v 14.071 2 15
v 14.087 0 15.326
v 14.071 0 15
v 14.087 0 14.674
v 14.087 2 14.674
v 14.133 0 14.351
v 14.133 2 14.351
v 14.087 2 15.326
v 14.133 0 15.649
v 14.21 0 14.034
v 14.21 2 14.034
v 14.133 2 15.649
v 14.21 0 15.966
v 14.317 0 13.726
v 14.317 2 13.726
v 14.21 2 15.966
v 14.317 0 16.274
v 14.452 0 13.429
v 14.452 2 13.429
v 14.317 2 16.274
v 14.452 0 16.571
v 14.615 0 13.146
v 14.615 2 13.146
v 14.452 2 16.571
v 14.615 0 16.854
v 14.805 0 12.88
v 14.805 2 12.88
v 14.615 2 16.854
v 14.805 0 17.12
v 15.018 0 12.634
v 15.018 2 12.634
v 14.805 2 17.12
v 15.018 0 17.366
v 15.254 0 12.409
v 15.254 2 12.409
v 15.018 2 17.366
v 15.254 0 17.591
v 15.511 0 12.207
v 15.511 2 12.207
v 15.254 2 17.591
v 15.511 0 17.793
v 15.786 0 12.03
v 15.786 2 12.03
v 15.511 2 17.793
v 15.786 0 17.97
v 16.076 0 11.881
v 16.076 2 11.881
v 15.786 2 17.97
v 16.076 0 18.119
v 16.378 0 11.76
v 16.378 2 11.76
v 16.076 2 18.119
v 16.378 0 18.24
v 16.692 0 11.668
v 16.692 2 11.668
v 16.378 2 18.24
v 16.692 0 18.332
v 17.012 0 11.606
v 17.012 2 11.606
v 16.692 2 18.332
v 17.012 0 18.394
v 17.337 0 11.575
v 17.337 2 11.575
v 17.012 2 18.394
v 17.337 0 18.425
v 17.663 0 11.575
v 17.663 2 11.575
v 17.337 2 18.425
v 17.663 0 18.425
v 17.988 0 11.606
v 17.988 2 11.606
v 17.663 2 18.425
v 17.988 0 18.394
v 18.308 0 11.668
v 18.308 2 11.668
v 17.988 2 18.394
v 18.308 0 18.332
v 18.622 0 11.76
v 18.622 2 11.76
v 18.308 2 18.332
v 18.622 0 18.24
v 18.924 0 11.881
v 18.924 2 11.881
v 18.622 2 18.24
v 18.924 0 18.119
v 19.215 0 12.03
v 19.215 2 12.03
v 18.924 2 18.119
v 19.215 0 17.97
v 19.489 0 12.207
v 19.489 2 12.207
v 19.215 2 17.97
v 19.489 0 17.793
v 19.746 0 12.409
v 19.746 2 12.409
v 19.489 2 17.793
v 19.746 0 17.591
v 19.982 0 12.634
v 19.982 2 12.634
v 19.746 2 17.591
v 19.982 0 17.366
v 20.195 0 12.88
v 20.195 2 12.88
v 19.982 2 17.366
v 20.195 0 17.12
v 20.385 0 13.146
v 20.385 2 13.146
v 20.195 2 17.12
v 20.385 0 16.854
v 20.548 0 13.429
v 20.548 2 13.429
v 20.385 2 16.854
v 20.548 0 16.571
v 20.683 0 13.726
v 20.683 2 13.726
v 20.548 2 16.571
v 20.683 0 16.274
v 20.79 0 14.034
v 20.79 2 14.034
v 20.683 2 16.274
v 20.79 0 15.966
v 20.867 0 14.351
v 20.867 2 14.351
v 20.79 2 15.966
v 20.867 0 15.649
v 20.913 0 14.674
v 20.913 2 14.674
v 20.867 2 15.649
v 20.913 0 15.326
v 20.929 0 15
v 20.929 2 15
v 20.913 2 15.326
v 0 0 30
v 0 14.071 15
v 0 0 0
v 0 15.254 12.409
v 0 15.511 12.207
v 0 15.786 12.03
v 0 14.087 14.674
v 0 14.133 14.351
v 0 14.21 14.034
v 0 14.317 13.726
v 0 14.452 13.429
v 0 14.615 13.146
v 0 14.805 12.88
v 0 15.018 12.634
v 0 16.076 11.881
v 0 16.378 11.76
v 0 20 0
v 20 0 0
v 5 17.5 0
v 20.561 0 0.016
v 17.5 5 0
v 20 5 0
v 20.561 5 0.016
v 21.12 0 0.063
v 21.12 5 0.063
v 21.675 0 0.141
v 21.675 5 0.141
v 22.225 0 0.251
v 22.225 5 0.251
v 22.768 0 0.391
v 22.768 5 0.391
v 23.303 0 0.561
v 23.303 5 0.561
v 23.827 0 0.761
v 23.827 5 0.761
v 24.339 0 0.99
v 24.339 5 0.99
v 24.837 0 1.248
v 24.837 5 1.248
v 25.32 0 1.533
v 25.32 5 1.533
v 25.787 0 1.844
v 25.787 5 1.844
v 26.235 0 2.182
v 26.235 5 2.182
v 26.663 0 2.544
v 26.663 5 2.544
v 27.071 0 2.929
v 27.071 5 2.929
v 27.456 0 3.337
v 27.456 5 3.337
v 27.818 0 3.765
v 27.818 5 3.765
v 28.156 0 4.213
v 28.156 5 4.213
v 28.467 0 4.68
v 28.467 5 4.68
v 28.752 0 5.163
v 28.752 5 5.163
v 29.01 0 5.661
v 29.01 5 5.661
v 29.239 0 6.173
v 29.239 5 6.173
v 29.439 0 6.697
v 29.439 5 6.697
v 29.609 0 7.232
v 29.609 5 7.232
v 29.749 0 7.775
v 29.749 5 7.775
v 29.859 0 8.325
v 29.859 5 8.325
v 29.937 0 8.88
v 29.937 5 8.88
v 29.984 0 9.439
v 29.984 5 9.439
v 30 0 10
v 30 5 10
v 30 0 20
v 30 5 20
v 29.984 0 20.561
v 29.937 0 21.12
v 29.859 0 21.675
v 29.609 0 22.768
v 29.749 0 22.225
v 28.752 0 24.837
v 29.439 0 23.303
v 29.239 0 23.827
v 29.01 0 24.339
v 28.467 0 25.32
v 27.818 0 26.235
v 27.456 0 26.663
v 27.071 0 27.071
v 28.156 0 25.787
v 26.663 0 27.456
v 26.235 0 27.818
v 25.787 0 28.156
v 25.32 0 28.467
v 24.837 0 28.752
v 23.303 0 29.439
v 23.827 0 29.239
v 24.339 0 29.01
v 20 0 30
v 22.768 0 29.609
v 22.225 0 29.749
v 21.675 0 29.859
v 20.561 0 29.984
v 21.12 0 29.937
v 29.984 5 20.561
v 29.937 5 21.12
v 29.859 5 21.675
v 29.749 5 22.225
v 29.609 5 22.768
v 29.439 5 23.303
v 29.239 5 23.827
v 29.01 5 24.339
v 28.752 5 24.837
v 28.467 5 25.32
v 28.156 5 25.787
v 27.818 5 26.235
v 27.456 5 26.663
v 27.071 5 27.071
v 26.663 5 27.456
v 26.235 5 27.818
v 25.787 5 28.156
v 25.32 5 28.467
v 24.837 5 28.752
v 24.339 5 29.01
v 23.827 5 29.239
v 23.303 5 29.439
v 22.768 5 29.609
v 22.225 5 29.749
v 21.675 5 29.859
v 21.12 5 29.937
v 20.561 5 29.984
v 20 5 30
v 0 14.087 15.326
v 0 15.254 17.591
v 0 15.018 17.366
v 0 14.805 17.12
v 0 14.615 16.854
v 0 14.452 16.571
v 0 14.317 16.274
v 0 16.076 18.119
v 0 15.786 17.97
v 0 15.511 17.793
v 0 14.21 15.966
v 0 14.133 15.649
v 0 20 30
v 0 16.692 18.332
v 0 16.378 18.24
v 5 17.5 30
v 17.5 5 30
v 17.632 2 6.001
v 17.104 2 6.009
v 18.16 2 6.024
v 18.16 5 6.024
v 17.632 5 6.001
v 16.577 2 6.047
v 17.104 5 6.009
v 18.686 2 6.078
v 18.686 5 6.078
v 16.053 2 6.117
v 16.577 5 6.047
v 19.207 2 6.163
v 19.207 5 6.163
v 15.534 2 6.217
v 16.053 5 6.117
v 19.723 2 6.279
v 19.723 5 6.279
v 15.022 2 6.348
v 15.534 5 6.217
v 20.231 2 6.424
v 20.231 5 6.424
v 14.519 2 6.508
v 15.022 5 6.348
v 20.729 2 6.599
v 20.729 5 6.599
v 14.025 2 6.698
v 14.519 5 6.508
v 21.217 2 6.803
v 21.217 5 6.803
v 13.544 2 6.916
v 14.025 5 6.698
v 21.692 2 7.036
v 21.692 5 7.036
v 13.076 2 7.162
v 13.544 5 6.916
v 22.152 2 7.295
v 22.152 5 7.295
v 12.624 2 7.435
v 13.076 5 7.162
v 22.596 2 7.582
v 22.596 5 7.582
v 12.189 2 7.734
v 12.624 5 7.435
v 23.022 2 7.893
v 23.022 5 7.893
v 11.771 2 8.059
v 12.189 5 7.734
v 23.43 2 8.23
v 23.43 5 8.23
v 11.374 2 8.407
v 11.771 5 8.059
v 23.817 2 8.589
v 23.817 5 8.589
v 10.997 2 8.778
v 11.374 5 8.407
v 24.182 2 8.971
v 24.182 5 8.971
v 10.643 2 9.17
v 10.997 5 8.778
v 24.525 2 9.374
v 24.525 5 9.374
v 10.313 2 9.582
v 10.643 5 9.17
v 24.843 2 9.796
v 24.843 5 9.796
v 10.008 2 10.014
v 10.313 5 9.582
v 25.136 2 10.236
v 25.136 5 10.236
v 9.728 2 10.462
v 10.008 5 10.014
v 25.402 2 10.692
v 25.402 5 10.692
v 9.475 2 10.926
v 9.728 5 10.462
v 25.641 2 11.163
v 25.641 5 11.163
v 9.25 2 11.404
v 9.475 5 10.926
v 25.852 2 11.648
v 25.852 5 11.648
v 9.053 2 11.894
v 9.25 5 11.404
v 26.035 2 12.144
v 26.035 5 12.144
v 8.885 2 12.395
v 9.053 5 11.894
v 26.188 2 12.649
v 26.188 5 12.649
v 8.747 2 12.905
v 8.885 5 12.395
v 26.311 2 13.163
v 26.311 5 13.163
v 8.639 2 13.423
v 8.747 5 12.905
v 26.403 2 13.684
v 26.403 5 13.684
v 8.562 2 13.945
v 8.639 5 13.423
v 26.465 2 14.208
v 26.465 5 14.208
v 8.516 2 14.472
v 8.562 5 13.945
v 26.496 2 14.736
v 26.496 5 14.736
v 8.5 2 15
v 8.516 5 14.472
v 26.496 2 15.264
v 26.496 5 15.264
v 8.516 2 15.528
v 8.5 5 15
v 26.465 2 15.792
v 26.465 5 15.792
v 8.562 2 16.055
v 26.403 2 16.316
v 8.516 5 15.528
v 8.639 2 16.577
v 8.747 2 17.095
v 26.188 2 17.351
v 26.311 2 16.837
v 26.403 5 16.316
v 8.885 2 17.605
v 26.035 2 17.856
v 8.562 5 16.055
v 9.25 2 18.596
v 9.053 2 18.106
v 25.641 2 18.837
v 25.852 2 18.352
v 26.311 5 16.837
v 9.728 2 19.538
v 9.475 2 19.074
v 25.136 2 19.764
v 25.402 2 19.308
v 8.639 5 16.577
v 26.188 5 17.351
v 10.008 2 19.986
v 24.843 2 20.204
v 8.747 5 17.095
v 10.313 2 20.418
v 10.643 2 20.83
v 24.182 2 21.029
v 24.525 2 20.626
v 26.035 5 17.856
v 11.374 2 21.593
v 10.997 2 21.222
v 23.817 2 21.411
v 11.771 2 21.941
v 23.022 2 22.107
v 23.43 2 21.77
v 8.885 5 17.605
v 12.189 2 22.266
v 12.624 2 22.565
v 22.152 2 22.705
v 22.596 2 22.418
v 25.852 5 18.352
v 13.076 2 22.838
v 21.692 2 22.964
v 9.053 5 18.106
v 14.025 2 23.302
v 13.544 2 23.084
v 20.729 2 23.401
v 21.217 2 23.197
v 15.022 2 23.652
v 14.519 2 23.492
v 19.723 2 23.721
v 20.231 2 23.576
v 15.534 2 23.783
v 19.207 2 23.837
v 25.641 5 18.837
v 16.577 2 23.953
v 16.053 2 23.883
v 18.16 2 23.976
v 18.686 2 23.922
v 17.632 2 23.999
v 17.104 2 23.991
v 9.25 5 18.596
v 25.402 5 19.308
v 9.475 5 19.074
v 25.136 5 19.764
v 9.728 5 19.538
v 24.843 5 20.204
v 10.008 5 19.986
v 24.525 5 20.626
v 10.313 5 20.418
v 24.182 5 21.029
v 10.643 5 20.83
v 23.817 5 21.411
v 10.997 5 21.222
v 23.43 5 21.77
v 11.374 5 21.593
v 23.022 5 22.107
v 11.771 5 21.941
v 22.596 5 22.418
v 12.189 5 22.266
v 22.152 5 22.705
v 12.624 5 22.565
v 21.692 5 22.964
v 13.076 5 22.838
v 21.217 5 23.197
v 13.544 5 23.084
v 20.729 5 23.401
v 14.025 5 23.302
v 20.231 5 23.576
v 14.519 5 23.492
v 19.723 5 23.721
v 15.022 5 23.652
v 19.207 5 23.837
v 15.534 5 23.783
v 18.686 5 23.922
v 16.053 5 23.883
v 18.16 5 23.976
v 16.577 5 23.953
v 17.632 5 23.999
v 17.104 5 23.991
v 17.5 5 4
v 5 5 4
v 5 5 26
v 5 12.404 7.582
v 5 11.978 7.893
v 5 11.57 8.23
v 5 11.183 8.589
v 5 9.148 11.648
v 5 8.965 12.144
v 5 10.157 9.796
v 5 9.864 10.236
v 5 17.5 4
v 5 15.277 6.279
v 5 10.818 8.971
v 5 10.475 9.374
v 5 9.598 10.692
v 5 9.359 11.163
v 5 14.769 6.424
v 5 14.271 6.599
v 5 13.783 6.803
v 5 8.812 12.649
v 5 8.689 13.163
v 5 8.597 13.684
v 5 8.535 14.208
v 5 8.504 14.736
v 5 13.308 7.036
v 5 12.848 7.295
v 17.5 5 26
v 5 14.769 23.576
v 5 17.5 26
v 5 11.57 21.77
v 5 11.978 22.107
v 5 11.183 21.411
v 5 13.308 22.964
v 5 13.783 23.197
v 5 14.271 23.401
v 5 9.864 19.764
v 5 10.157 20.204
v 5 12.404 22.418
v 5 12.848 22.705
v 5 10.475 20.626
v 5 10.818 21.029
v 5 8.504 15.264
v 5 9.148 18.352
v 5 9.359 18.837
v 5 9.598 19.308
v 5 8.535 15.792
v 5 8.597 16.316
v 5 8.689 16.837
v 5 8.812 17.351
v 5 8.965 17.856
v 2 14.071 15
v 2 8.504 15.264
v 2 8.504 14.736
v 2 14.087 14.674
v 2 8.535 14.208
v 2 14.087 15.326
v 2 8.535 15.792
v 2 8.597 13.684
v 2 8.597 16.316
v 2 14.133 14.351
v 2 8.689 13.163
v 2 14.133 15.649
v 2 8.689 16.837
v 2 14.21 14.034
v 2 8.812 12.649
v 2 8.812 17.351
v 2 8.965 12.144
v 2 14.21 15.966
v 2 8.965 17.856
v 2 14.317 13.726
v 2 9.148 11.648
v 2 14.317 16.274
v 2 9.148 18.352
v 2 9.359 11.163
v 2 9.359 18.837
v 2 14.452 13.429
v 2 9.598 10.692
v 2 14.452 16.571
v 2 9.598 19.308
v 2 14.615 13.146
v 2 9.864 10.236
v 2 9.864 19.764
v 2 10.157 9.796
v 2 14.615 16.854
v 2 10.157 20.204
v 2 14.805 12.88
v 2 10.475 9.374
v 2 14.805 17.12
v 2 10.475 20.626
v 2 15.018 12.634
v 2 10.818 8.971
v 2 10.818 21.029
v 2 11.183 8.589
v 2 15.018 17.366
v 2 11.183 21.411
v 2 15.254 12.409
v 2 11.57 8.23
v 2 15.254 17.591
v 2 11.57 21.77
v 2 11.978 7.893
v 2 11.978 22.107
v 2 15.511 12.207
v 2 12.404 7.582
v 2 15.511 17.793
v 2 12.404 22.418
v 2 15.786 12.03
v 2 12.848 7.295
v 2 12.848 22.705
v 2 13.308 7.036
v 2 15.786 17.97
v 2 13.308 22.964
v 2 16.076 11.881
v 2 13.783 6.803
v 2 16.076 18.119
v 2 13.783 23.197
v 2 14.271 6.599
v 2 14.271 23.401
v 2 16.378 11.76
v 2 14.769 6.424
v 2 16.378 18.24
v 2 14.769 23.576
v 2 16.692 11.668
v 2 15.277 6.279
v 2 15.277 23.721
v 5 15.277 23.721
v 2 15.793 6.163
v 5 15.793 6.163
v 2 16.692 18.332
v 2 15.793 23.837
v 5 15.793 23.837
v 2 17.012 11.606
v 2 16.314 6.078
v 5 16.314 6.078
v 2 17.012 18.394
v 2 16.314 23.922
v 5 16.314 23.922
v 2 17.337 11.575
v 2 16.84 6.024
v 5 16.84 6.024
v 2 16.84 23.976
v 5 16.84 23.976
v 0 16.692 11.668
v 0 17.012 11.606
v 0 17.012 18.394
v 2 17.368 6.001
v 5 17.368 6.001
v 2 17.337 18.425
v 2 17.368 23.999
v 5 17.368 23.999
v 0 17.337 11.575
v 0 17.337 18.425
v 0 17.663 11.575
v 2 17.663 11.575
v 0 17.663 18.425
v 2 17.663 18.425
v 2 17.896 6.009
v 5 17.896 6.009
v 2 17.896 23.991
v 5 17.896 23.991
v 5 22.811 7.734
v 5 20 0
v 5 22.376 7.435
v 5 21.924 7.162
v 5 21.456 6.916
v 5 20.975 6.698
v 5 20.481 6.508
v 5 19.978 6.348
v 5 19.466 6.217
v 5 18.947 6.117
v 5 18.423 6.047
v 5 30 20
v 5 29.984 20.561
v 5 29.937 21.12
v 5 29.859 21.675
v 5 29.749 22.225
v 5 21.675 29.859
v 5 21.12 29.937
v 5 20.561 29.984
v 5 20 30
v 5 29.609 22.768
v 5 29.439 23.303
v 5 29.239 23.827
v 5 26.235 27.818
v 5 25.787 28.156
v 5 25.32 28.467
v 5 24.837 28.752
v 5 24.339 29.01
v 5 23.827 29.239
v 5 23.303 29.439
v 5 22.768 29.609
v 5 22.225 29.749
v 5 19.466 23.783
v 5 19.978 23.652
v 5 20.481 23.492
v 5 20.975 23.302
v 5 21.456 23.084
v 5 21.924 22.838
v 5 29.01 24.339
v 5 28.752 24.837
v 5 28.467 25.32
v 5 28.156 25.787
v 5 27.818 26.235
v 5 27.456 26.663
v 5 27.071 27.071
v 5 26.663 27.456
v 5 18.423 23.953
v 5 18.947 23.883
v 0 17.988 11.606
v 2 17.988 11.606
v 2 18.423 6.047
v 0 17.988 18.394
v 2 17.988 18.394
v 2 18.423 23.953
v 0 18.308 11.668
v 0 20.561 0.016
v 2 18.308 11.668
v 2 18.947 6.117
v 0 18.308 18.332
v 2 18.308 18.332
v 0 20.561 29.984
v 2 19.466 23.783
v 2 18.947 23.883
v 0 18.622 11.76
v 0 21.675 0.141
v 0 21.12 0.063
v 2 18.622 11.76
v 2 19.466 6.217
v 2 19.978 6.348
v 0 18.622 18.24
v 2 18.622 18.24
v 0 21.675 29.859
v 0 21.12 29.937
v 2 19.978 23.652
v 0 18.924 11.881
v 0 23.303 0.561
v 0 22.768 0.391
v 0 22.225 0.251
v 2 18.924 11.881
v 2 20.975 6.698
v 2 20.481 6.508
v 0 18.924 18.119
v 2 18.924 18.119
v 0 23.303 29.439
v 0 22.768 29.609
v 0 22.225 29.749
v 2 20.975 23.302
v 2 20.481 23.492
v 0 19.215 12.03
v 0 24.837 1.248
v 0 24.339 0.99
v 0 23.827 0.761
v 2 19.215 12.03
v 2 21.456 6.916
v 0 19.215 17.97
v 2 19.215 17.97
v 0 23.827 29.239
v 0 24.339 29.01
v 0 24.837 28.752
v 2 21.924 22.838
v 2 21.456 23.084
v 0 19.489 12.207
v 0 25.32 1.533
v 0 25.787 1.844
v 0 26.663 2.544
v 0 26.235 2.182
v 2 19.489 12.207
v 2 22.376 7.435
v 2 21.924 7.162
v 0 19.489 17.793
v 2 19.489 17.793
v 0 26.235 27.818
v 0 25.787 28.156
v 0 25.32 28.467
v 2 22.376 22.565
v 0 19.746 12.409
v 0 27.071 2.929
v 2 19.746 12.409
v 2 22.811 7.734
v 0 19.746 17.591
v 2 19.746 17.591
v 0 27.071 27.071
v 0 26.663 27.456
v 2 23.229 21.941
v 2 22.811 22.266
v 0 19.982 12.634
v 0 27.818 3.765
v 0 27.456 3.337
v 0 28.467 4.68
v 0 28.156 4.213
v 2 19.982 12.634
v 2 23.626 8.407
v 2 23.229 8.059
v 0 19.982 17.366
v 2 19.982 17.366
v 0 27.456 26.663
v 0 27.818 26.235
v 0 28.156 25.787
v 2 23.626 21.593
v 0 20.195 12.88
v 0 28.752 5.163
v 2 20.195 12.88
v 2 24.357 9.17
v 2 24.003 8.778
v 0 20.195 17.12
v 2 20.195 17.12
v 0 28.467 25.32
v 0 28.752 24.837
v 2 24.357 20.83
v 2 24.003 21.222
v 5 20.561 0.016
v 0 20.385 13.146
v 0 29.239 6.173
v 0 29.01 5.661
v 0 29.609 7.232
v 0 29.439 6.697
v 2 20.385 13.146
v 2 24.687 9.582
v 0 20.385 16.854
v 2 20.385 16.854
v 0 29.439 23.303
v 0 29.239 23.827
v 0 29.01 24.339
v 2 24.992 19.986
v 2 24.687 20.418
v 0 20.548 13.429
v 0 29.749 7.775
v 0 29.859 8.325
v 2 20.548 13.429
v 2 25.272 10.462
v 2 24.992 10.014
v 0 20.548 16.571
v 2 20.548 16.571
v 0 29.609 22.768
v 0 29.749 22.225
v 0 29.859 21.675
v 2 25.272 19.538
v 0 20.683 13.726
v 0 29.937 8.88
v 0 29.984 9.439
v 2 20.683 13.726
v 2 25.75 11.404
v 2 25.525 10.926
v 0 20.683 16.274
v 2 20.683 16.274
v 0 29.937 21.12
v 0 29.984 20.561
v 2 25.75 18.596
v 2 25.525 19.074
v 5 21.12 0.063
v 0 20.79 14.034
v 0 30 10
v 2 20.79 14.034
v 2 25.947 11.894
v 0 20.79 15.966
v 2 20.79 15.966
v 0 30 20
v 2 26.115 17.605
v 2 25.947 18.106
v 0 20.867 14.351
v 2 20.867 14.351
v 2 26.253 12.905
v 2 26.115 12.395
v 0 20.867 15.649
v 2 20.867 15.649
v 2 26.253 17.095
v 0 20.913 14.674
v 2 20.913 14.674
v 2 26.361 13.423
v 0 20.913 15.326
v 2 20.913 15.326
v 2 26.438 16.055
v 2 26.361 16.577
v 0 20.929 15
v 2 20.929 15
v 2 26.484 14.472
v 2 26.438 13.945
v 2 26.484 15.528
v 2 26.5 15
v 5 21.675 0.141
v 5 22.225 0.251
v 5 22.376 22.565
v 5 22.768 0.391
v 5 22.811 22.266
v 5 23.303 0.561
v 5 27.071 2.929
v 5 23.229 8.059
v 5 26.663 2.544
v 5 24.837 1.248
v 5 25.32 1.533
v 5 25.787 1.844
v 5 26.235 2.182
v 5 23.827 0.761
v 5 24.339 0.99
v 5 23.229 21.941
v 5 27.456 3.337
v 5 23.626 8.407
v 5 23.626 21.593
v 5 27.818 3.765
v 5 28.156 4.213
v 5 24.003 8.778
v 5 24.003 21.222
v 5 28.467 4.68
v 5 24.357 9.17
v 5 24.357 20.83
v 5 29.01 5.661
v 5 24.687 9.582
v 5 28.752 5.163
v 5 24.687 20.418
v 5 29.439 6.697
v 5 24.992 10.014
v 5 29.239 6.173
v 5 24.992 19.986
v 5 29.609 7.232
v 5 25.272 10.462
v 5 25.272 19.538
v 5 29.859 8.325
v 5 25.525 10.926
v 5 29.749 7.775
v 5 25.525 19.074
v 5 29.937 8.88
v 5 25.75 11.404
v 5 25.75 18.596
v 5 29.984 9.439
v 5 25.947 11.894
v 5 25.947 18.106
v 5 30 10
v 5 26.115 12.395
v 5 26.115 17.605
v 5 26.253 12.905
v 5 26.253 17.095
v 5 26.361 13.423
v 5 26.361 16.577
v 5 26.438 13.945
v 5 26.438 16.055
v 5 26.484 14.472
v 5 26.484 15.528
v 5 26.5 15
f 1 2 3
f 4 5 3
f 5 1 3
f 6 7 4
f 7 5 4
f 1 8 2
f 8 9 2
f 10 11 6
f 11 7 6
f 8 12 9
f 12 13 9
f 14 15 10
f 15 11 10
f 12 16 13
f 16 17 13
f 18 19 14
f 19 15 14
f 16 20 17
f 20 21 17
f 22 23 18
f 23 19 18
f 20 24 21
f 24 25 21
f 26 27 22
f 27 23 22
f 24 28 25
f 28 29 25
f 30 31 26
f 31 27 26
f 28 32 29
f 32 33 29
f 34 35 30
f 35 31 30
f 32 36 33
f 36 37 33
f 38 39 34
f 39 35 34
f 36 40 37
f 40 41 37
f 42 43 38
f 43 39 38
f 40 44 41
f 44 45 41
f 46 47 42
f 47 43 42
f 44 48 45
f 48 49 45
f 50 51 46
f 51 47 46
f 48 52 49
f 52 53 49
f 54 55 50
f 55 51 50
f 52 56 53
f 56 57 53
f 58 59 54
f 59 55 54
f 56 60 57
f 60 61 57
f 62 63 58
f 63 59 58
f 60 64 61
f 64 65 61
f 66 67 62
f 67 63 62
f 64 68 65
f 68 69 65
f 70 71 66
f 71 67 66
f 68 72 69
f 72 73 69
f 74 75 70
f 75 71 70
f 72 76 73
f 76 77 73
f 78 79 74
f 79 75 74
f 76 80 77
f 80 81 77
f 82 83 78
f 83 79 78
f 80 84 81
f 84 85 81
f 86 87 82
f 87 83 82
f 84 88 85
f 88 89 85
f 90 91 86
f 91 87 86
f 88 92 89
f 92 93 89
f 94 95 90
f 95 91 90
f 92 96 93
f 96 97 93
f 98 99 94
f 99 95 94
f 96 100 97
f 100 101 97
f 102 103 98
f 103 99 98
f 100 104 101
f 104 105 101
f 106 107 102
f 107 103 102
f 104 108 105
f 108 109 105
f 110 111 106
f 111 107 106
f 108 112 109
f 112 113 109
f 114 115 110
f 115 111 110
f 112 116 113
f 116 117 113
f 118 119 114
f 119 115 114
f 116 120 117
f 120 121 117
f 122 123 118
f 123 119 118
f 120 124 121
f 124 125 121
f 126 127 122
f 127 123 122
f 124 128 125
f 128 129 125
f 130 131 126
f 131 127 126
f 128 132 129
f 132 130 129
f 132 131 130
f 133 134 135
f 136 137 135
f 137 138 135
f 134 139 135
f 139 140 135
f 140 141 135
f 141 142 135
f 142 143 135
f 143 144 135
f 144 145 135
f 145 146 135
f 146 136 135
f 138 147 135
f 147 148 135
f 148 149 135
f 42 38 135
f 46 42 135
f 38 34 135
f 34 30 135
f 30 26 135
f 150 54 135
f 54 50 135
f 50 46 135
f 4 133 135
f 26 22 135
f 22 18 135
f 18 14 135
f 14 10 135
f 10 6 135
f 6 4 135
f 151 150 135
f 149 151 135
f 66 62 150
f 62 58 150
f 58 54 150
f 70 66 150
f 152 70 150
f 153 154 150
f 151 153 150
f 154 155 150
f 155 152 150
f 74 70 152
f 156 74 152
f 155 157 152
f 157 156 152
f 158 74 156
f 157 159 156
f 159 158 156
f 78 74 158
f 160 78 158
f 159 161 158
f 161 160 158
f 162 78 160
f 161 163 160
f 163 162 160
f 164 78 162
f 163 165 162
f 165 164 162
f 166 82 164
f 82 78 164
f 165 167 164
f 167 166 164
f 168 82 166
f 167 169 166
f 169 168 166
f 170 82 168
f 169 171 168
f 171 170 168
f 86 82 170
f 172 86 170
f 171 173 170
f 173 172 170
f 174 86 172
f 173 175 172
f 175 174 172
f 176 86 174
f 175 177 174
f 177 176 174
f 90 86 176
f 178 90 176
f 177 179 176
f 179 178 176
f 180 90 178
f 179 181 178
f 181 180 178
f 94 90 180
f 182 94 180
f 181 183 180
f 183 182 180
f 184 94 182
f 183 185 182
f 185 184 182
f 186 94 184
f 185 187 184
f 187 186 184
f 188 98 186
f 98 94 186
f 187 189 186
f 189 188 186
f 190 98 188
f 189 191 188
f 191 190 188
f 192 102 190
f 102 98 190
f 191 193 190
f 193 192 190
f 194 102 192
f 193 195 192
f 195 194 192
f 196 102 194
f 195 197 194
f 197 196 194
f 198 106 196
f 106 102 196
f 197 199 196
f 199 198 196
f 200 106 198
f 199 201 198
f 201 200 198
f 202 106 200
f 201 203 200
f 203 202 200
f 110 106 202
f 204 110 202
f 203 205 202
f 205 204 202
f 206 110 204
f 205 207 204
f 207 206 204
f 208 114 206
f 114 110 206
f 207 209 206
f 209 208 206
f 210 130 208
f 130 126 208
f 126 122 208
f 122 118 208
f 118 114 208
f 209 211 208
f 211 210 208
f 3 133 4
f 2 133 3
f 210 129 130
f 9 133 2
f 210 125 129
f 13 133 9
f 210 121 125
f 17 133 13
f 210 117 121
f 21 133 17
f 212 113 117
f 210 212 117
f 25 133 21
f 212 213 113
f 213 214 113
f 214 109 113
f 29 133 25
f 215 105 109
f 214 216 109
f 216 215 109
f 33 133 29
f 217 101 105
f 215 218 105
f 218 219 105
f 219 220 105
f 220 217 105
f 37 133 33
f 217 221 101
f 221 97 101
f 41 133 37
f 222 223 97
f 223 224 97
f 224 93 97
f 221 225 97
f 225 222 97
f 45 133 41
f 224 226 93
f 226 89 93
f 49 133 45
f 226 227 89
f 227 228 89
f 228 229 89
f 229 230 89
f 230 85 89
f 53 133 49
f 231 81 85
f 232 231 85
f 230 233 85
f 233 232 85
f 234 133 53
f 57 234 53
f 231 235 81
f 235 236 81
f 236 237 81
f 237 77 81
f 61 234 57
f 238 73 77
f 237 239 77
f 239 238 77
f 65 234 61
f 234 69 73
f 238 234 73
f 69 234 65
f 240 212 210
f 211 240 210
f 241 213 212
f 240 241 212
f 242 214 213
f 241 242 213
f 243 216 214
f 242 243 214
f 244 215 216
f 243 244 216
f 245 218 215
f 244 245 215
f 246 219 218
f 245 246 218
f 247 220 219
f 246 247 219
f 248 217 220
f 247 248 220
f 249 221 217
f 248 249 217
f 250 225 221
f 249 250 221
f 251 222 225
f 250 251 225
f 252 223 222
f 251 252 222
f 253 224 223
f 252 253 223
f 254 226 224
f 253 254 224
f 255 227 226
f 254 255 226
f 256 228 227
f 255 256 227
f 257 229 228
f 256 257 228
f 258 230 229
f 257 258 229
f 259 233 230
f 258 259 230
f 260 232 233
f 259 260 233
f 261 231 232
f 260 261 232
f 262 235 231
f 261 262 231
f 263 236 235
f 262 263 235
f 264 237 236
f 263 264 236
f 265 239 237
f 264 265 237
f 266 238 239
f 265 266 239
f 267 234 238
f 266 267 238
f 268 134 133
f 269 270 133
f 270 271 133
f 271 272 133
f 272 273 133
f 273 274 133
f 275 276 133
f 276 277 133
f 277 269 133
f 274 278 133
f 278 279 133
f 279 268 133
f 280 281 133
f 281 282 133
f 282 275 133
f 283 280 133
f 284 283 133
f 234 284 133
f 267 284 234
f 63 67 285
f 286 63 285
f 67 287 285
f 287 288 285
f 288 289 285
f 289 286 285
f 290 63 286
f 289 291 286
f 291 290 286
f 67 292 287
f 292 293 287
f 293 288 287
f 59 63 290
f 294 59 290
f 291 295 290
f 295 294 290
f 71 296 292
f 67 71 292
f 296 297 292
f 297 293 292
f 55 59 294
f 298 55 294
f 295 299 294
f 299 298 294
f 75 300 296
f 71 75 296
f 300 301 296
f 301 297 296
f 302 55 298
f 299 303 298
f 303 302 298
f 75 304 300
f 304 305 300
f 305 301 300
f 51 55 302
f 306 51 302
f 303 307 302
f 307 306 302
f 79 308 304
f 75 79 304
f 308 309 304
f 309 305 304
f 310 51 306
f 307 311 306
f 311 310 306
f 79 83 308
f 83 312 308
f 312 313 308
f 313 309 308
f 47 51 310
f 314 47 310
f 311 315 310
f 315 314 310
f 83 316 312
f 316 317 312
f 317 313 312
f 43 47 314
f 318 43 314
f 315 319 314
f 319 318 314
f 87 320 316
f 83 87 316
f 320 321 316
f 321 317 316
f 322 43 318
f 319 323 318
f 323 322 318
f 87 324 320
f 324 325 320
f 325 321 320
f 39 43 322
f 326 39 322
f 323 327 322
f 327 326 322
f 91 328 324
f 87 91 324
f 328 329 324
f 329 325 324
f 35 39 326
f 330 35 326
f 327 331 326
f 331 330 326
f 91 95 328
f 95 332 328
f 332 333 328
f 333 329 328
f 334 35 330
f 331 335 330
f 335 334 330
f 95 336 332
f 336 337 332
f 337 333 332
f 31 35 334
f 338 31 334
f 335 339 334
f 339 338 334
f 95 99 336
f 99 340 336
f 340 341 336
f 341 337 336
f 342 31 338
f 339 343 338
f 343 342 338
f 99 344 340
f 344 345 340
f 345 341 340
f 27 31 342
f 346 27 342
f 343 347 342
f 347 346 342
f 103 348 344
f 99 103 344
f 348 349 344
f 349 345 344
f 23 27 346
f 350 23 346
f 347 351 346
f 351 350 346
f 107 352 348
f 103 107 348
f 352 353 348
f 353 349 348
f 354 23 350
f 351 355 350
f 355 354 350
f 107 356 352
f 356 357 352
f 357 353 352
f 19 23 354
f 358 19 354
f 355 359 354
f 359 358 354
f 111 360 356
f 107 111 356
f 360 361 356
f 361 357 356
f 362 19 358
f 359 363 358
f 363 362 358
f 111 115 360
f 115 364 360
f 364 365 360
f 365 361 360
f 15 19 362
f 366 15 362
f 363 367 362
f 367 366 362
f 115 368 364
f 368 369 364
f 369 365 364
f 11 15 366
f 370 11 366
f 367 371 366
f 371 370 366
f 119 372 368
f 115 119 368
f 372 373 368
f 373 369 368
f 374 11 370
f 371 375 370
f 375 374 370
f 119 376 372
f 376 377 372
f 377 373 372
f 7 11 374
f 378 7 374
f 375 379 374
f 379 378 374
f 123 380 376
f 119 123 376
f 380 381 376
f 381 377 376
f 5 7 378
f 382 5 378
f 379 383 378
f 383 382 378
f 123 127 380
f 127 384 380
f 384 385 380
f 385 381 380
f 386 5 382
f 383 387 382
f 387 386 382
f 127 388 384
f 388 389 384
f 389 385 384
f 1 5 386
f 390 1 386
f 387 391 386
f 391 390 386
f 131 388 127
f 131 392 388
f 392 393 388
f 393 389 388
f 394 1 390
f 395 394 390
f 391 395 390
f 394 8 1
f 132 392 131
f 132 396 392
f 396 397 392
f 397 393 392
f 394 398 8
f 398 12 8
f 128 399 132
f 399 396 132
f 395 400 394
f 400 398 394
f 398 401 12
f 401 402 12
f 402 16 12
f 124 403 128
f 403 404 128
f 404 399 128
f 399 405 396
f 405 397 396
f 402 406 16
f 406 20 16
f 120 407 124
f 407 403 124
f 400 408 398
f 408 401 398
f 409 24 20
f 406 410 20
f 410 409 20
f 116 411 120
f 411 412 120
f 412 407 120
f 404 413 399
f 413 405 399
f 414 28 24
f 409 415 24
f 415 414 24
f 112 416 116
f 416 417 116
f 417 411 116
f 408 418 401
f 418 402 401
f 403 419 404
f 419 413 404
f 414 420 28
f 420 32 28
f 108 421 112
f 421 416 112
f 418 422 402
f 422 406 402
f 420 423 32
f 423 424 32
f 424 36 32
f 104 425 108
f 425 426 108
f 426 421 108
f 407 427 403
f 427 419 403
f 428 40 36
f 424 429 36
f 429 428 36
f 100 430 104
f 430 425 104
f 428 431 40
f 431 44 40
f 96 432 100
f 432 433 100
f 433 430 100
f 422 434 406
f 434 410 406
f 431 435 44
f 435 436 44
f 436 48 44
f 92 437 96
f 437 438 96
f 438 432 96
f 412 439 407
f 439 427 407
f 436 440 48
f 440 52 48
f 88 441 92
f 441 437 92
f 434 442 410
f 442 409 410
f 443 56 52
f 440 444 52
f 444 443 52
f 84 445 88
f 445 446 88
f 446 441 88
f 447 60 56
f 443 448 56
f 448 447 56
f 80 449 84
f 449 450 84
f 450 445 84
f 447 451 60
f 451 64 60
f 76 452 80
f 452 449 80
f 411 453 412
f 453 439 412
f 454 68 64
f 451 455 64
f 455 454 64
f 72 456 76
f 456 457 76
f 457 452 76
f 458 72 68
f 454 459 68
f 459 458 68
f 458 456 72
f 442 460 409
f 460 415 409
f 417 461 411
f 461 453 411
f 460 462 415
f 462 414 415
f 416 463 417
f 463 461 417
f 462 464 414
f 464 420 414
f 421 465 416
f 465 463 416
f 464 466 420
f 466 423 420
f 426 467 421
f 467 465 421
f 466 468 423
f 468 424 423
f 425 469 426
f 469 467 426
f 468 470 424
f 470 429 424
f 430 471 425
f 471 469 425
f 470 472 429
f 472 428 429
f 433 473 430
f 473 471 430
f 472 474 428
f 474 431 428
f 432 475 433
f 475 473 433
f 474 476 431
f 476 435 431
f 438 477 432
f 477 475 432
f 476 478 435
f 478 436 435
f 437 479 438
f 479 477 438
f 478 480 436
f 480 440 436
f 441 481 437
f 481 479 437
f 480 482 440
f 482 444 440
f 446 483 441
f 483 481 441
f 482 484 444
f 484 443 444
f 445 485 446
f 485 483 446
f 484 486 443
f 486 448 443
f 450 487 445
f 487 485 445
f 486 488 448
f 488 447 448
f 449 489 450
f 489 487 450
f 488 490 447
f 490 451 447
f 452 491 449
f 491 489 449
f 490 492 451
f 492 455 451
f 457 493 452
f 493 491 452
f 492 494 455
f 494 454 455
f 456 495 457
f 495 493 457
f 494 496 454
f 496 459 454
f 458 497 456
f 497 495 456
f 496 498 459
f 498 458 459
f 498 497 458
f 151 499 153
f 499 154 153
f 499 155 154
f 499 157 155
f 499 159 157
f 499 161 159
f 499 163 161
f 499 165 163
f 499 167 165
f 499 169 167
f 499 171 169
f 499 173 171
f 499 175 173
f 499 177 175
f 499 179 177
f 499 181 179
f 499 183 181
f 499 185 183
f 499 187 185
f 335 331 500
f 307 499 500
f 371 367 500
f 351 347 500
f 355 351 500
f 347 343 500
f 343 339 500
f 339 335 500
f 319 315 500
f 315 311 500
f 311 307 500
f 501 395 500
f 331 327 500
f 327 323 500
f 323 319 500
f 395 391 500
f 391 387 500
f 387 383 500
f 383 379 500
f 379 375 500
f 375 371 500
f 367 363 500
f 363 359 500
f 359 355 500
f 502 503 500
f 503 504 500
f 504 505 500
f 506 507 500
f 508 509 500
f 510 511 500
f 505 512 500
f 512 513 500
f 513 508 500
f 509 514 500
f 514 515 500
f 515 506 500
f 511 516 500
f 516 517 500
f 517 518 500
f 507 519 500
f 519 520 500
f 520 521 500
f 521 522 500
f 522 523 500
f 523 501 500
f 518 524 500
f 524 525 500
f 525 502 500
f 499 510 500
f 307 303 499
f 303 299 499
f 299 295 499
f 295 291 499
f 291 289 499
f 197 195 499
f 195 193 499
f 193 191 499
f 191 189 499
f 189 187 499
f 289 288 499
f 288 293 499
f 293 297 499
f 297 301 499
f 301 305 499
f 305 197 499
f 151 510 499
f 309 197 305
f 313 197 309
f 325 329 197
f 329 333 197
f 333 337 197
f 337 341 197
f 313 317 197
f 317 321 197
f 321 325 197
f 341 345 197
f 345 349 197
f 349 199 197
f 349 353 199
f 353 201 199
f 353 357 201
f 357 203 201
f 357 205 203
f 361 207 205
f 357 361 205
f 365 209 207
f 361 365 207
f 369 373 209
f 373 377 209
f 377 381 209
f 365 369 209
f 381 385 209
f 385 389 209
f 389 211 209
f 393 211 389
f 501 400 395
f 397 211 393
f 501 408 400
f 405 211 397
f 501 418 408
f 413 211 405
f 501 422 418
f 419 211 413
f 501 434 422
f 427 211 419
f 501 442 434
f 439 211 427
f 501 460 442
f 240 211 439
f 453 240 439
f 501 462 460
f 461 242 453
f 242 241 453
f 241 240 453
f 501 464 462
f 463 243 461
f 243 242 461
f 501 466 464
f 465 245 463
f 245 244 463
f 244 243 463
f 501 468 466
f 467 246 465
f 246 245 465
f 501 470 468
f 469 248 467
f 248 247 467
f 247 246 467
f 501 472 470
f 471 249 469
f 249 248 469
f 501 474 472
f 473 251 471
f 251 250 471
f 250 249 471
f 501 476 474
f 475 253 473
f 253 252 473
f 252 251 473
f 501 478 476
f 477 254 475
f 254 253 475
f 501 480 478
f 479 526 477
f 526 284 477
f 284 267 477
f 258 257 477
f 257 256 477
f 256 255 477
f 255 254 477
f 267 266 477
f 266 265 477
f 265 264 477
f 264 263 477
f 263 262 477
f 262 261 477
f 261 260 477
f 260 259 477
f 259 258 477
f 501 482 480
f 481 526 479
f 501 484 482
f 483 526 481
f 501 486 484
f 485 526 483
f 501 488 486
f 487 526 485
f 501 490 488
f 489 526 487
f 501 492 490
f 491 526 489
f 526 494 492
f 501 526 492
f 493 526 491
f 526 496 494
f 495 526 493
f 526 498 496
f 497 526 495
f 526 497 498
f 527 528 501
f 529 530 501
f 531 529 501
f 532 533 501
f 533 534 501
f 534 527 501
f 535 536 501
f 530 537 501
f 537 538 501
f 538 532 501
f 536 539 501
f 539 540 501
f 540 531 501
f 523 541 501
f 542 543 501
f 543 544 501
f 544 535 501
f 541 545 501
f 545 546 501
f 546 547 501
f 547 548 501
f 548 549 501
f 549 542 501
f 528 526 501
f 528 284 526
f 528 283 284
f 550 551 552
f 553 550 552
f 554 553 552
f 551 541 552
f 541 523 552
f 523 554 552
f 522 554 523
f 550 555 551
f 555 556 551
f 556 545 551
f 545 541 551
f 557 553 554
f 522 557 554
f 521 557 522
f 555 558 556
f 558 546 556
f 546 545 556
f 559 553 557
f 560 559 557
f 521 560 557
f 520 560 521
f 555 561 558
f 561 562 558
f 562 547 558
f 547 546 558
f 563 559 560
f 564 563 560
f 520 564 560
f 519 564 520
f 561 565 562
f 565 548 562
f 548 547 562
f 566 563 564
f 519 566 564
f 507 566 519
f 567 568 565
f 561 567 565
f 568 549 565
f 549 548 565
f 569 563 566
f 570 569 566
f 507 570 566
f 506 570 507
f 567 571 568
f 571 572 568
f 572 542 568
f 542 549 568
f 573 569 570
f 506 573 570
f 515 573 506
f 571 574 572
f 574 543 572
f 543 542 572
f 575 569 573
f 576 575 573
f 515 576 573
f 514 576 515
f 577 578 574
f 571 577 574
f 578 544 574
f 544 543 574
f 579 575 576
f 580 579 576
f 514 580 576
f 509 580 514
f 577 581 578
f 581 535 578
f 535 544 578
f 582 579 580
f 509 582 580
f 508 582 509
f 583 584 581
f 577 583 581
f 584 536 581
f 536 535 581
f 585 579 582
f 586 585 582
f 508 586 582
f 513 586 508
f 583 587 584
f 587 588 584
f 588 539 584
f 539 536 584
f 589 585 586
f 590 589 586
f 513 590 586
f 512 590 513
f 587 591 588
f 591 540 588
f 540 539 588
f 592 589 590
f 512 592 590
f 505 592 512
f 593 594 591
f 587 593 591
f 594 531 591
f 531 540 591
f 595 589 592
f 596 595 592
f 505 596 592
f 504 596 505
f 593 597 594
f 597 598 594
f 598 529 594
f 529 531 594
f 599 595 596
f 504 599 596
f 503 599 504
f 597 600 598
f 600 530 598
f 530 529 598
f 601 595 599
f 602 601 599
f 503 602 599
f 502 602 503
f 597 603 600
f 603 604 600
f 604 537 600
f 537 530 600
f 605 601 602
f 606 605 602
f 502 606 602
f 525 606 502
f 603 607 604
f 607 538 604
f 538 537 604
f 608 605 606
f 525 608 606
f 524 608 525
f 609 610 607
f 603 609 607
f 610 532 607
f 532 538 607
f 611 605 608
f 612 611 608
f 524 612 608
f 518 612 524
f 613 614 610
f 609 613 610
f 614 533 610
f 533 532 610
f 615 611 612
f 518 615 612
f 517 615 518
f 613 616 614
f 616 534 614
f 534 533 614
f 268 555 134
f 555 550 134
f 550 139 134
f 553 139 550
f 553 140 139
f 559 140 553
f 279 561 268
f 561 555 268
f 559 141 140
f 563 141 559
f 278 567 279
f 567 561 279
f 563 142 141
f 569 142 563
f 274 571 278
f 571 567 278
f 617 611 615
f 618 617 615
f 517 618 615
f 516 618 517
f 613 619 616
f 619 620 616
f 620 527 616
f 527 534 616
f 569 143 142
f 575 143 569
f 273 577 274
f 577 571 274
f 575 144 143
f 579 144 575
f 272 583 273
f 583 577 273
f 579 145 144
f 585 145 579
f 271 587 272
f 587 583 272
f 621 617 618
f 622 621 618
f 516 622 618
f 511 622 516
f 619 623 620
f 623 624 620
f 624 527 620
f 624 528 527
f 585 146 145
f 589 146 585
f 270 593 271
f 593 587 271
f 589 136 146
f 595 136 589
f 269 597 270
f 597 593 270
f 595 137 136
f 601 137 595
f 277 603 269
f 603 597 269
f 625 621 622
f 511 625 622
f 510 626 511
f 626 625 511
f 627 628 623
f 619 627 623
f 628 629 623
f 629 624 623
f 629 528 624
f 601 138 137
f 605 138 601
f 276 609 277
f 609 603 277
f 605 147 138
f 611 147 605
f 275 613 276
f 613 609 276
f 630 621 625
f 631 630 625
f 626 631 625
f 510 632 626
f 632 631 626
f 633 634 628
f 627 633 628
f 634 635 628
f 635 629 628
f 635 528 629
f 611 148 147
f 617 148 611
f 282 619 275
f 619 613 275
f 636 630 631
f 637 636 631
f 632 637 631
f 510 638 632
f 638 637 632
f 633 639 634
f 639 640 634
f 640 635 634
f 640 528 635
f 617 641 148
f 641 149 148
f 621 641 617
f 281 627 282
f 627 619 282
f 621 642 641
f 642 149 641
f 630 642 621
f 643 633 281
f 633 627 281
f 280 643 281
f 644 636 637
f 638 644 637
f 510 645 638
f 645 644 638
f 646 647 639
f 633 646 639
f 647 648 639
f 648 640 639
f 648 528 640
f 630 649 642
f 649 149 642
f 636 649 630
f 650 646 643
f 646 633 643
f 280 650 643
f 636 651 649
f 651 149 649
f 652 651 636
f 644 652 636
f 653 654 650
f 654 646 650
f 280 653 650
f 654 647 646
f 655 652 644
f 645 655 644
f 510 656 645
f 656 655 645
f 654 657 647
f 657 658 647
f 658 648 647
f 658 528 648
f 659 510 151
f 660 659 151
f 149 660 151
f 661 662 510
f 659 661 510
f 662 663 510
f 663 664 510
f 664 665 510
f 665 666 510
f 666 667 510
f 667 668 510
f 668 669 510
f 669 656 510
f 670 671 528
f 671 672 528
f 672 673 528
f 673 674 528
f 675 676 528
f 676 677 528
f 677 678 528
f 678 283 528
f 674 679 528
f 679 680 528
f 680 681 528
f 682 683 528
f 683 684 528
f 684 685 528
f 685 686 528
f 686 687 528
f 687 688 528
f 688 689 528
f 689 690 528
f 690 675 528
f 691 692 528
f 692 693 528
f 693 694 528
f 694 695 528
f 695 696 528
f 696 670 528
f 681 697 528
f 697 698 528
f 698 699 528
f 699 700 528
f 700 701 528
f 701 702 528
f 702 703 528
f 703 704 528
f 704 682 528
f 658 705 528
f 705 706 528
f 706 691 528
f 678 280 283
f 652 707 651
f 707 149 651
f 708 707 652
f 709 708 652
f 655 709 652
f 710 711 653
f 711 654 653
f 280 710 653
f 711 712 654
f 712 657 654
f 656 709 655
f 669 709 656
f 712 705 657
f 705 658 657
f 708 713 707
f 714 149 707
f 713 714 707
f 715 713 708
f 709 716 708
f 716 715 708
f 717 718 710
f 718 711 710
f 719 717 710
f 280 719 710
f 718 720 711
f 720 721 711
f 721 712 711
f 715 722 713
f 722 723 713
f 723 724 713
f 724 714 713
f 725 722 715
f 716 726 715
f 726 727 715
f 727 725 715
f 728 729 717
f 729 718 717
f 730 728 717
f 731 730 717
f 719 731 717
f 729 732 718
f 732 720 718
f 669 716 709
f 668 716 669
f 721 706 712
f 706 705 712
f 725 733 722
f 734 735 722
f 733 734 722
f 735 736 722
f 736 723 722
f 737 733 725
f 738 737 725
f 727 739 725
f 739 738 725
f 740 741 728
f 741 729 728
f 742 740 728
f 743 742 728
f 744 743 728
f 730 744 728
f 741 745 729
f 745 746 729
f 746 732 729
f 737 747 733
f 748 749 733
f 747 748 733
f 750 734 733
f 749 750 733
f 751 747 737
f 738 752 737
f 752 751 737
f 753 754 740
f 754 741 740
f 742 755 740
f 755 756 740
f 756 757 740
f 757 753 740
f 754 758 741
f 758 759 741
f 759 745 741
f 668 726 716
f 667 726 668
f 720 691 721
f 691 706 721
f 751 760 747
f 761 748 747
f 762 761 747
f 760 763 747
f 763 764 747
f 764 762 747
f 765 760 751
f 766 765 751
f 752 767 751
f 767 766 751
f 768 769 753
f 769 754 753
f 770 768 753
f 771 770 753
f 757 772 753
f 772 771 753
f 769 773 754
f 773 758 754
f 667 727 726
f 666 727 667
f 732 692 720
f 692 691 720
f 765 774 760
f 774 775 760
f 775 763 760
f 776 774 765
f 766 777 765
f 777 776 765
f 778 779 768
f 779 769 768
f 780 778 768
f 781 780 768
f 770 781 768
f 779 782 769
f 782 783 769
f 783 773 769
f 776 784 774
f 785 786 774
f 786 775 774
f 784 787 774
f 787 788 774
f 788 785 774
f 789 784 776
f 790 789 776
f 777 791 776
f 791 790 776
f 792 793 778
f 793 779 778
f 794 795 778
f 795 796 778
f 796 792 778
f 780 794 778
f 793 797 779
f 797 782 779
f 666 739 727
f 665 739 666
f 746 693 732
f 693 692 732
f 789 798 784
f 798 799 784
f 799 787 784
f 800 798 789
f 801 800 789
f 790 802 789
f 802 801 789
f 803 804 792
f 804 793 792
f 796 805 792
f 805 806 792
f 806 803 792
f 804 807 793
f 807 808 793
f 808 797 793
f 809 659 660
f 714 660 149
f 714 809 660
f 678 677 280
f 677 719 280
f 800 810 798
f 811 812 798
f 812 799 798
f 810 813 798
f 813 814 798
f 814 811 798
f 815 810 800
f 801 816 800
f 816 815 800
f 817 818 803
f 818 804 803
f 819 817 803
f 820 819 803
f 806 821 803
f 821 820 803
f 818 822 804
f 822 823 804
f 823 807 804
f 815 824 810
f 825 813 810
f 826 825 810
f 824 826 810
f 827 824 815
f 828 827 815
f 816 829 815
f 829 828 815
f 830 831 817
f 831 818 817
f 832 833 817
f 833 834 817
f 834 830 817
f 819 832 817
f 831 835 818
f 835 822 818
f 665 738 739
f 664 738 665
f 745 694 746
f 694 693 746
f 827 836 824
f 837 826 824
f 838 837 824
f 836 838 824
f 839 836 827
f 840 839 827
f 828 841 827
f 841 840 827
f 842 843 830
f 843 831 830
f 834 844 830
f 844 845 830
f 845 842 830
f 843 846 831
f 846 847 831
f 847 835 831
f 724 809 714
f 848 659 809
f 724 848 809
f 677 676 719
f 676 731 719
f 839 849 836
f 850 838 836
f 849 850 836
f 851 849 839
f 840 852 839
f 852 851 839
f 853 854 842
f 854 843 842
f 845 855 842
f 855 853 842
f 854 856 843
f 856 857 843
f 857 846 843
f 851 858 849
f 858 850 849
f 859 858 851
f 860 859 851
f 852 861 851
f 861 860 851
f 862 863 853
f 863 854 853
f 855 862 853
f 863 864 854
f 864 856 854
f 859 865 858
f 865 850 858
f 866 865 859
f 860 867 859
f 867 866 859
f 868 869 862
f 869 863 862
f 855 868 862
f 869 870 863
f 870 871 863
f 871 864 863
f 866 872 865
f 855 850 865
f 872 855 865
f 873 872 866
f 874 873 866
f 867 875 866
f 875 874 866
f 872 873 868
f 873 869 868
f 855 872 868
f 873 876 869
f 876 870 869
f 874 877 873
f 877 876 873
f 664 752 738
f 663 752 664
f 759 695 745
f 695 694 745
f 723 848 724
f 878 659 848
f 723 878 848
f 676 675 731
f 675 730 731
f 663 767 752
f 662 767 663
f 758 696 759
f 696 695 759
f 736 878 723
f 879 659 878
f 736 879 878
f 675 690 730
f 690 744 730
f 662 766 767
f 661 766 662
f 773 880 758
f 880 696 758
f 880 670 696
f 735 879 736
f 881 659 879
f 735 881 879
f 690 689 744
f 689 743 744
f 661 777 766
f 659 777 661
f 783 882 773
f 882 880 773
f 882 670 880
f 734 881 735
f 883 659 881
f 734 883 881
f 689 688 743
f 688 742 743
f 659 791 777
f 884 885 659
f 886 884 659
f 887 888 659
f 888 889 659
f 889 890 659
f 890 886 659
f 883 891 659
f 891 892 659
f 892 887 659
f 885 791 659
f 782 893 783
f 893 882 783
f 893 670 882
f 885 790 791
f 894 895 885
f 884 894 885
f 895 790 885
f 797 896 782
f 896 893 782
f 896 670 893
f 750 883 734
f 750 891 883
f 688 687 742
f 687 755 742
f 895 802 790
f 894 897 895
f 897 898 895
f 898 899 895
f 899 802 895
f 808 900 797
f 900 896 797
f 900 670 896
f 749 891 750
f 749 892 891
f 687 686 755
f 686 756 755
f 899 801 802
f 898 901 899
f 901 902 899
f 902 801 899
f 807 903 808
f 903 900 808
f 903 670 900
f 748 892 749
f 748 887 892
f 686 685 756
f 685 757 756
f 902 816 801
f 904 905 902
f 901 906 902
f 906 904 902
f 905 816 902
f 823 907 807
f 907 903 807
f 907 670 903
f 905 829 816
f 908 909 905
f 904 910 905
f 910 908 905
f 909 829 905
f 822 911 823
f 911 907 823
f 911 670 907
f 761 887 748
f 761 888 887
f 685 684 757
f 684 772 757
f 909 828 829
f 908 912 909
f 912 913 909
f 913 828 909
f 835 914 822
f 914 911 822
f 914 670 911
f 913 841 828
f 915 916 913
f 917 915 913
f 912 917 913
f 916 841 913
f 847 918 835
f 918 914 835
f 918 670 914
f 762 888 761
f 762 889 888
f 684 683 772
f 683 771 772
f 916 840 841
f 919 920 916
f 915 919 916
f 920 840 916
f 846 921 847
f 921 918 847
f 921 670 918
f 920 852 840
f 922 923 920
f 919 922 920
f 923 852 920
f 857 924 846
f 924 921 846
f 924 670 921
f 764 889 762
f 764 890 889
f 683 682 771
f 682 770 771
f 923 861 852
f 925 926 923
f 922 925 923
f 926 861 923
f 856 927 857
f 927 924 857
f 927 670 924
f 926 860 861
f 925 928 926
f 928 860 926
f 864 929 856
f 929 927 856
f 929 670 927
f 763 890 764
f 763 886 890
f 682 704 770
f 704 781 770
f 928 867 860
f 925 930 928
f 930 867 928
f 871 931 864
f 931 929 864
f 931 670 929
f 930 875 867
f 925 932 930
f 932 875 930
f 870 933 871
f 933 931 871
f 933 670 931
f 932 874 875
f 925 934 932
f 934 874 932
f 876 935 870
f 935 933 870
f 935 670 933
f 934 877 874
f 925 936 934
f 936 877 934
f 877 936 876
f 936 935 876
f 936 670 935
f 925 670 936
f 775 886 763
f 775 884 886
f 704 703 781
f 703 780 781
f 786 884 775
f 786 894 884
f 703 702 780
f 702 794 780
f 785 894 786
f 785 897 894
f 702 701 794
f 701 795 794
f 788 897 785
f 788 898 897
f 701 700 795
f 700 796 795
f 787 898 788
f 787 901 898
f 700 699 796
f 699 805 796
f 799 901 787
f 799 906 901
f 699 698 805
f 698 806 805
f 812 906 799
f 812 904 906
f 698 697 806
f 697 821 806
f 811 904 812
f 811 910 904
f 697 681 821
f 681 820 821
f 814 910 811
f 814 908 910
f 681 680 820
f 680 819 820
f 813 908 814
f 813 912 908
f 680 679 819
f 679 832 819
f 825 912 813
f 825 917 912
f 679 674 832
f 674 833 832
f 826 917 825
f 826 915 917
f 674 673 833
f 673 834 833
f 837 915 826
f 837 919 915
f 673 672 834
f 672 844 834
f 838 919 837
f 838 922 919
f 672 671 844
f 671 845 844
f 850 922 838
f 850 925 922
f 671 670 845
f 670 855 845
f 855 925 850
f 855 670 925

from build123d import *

# Parameters (mm, degrees)
BOSS_EXTRUDE1_DEPTH     = 30
SKETCH2_R               = 3.429
CUT_EXTRUDE1_DEPTH      = 50.244289009
CUT_EXTRUDE2_DEPTH      = 50.244289009
CUT_EXTRUDE2_DEPTH_BACK = 50.244289009
SKETCH4_R               = 3.429
SKETCH7_R               = 9
CUT_EXTRUDE3_DEPTH      = 3
SKETCH8_R               = 9
CUT_EXTRUDE4_DEPTH      = 3
BOSS_EXTRUDE2_DEPTH     = 4
BOSS_EXTRUDE3_DEPTH     = 4
FILLET1_R               = 10


with BuildPart() as part:
    # Sketch1 → Boss-Extrude1 (new body)
    with BuildSketch(Plane.XY):
        Polygon((0, 30), (0, 0), (30, 0), (30, 5), (5, 5), (5, 30), align=None)
    extrude(amount=BOSS_EXTRUDE1_DEPTH)

    # Sketch2 → Cut-Extrude1 (cut, through all)
    with BuildSketch(Plane(origin=(5, 0, 0), x_dir=(0, 0, -1), z_dir=(1, 0, 0))):
        with Locations(Location((-15, 17.5, 0), (0, 0, 90))):
            Circle(SKETCH2_R)
    extrude(amount=-CUT_EXTRUDE1_DEPTH, mode=Mode.SUBTRACT)

    # Sketch4 → Cut-Extrude2 (cut, two sides: drawn at the far end of the back side and taken through both)
    with BuildSketch(Plane(origin=(0, 5, 0), x_dir=(1, 0, 0), z_dir=(0, 1, 0)).offset(-CUT_EXTRUDE2_DEPTH_BACK)):
        with Locations(Location((17.5, -15, 0), (0, 0, 180))):
            Circle(SKETCH4_R)
    extrude(amount=CUT_EXTRUDE2_DEPTH + CUT_EXTRUDE2_DEPTH_BACK, mode=Mode.SUBTRACT)

    # Sketch7 → Cut-Extrude3 (cut)
    with BuildSketch(Plane(origin=(0, 5, 0), x_dir=(1, 0, 0), z_dir=(0, 1, 0))):
        with Locations(Location((17.5, -15, 0), (0, 0, 180))):
            Circle(SKETCH7_R)
    extrude(amount=-CUT_EXTRUDE3_DEPTH, mode=Mode.SUBTRACT)

    # Sketch8 → Cut-Extrude4 (cut)
    with BuildSketch(Plane(origin=(5, 0, 0), x_dir=(0, 0, -1), z_dir=(1, 0, 0))):
        with Locations(Location((-15, 17.5, 0), (0, 0, 90))):
            Circle(SKETCH8_R)
    extrude(amount=-CUT_EXTRUDE4_DEPTH, mode=Mode.SUBTRACT)

    # Sketch9 → Boss-Extrude2 (add)
    with BuildSketch(Plane(origin=(0, 0, 0), x_dir=(-1, 0, 0), z_dir=(0, 0, -1))):
        Polygon((-17.5, 5), (-5, 17.5), (-5, 5), align=None)
    extrude(amount=-BOSS_EXTRUDE2_DEPTH)

    # Sketch10 → Boss-Extrude3 (add)
    with BuildSketch(Plane.XY.offset(30)):
        Polygon((5, 5), (17.5, 5), (5, 17.5), align=None)
    extrude(amount=-BOSS_EXTRUDE3_DEPTH)

    # Fillet1
    fillet1_edges = [part.edges().sort_by_distance(p)[0] for p in [
        (30, 2.5, 30),
        (2.5, 30, 30),
        (30, 2.5, 0),
        (2.5, 30, 0),
    ]]
    fillet(fillet1_edges, radius=FILLET1_R)


solid = part.part
